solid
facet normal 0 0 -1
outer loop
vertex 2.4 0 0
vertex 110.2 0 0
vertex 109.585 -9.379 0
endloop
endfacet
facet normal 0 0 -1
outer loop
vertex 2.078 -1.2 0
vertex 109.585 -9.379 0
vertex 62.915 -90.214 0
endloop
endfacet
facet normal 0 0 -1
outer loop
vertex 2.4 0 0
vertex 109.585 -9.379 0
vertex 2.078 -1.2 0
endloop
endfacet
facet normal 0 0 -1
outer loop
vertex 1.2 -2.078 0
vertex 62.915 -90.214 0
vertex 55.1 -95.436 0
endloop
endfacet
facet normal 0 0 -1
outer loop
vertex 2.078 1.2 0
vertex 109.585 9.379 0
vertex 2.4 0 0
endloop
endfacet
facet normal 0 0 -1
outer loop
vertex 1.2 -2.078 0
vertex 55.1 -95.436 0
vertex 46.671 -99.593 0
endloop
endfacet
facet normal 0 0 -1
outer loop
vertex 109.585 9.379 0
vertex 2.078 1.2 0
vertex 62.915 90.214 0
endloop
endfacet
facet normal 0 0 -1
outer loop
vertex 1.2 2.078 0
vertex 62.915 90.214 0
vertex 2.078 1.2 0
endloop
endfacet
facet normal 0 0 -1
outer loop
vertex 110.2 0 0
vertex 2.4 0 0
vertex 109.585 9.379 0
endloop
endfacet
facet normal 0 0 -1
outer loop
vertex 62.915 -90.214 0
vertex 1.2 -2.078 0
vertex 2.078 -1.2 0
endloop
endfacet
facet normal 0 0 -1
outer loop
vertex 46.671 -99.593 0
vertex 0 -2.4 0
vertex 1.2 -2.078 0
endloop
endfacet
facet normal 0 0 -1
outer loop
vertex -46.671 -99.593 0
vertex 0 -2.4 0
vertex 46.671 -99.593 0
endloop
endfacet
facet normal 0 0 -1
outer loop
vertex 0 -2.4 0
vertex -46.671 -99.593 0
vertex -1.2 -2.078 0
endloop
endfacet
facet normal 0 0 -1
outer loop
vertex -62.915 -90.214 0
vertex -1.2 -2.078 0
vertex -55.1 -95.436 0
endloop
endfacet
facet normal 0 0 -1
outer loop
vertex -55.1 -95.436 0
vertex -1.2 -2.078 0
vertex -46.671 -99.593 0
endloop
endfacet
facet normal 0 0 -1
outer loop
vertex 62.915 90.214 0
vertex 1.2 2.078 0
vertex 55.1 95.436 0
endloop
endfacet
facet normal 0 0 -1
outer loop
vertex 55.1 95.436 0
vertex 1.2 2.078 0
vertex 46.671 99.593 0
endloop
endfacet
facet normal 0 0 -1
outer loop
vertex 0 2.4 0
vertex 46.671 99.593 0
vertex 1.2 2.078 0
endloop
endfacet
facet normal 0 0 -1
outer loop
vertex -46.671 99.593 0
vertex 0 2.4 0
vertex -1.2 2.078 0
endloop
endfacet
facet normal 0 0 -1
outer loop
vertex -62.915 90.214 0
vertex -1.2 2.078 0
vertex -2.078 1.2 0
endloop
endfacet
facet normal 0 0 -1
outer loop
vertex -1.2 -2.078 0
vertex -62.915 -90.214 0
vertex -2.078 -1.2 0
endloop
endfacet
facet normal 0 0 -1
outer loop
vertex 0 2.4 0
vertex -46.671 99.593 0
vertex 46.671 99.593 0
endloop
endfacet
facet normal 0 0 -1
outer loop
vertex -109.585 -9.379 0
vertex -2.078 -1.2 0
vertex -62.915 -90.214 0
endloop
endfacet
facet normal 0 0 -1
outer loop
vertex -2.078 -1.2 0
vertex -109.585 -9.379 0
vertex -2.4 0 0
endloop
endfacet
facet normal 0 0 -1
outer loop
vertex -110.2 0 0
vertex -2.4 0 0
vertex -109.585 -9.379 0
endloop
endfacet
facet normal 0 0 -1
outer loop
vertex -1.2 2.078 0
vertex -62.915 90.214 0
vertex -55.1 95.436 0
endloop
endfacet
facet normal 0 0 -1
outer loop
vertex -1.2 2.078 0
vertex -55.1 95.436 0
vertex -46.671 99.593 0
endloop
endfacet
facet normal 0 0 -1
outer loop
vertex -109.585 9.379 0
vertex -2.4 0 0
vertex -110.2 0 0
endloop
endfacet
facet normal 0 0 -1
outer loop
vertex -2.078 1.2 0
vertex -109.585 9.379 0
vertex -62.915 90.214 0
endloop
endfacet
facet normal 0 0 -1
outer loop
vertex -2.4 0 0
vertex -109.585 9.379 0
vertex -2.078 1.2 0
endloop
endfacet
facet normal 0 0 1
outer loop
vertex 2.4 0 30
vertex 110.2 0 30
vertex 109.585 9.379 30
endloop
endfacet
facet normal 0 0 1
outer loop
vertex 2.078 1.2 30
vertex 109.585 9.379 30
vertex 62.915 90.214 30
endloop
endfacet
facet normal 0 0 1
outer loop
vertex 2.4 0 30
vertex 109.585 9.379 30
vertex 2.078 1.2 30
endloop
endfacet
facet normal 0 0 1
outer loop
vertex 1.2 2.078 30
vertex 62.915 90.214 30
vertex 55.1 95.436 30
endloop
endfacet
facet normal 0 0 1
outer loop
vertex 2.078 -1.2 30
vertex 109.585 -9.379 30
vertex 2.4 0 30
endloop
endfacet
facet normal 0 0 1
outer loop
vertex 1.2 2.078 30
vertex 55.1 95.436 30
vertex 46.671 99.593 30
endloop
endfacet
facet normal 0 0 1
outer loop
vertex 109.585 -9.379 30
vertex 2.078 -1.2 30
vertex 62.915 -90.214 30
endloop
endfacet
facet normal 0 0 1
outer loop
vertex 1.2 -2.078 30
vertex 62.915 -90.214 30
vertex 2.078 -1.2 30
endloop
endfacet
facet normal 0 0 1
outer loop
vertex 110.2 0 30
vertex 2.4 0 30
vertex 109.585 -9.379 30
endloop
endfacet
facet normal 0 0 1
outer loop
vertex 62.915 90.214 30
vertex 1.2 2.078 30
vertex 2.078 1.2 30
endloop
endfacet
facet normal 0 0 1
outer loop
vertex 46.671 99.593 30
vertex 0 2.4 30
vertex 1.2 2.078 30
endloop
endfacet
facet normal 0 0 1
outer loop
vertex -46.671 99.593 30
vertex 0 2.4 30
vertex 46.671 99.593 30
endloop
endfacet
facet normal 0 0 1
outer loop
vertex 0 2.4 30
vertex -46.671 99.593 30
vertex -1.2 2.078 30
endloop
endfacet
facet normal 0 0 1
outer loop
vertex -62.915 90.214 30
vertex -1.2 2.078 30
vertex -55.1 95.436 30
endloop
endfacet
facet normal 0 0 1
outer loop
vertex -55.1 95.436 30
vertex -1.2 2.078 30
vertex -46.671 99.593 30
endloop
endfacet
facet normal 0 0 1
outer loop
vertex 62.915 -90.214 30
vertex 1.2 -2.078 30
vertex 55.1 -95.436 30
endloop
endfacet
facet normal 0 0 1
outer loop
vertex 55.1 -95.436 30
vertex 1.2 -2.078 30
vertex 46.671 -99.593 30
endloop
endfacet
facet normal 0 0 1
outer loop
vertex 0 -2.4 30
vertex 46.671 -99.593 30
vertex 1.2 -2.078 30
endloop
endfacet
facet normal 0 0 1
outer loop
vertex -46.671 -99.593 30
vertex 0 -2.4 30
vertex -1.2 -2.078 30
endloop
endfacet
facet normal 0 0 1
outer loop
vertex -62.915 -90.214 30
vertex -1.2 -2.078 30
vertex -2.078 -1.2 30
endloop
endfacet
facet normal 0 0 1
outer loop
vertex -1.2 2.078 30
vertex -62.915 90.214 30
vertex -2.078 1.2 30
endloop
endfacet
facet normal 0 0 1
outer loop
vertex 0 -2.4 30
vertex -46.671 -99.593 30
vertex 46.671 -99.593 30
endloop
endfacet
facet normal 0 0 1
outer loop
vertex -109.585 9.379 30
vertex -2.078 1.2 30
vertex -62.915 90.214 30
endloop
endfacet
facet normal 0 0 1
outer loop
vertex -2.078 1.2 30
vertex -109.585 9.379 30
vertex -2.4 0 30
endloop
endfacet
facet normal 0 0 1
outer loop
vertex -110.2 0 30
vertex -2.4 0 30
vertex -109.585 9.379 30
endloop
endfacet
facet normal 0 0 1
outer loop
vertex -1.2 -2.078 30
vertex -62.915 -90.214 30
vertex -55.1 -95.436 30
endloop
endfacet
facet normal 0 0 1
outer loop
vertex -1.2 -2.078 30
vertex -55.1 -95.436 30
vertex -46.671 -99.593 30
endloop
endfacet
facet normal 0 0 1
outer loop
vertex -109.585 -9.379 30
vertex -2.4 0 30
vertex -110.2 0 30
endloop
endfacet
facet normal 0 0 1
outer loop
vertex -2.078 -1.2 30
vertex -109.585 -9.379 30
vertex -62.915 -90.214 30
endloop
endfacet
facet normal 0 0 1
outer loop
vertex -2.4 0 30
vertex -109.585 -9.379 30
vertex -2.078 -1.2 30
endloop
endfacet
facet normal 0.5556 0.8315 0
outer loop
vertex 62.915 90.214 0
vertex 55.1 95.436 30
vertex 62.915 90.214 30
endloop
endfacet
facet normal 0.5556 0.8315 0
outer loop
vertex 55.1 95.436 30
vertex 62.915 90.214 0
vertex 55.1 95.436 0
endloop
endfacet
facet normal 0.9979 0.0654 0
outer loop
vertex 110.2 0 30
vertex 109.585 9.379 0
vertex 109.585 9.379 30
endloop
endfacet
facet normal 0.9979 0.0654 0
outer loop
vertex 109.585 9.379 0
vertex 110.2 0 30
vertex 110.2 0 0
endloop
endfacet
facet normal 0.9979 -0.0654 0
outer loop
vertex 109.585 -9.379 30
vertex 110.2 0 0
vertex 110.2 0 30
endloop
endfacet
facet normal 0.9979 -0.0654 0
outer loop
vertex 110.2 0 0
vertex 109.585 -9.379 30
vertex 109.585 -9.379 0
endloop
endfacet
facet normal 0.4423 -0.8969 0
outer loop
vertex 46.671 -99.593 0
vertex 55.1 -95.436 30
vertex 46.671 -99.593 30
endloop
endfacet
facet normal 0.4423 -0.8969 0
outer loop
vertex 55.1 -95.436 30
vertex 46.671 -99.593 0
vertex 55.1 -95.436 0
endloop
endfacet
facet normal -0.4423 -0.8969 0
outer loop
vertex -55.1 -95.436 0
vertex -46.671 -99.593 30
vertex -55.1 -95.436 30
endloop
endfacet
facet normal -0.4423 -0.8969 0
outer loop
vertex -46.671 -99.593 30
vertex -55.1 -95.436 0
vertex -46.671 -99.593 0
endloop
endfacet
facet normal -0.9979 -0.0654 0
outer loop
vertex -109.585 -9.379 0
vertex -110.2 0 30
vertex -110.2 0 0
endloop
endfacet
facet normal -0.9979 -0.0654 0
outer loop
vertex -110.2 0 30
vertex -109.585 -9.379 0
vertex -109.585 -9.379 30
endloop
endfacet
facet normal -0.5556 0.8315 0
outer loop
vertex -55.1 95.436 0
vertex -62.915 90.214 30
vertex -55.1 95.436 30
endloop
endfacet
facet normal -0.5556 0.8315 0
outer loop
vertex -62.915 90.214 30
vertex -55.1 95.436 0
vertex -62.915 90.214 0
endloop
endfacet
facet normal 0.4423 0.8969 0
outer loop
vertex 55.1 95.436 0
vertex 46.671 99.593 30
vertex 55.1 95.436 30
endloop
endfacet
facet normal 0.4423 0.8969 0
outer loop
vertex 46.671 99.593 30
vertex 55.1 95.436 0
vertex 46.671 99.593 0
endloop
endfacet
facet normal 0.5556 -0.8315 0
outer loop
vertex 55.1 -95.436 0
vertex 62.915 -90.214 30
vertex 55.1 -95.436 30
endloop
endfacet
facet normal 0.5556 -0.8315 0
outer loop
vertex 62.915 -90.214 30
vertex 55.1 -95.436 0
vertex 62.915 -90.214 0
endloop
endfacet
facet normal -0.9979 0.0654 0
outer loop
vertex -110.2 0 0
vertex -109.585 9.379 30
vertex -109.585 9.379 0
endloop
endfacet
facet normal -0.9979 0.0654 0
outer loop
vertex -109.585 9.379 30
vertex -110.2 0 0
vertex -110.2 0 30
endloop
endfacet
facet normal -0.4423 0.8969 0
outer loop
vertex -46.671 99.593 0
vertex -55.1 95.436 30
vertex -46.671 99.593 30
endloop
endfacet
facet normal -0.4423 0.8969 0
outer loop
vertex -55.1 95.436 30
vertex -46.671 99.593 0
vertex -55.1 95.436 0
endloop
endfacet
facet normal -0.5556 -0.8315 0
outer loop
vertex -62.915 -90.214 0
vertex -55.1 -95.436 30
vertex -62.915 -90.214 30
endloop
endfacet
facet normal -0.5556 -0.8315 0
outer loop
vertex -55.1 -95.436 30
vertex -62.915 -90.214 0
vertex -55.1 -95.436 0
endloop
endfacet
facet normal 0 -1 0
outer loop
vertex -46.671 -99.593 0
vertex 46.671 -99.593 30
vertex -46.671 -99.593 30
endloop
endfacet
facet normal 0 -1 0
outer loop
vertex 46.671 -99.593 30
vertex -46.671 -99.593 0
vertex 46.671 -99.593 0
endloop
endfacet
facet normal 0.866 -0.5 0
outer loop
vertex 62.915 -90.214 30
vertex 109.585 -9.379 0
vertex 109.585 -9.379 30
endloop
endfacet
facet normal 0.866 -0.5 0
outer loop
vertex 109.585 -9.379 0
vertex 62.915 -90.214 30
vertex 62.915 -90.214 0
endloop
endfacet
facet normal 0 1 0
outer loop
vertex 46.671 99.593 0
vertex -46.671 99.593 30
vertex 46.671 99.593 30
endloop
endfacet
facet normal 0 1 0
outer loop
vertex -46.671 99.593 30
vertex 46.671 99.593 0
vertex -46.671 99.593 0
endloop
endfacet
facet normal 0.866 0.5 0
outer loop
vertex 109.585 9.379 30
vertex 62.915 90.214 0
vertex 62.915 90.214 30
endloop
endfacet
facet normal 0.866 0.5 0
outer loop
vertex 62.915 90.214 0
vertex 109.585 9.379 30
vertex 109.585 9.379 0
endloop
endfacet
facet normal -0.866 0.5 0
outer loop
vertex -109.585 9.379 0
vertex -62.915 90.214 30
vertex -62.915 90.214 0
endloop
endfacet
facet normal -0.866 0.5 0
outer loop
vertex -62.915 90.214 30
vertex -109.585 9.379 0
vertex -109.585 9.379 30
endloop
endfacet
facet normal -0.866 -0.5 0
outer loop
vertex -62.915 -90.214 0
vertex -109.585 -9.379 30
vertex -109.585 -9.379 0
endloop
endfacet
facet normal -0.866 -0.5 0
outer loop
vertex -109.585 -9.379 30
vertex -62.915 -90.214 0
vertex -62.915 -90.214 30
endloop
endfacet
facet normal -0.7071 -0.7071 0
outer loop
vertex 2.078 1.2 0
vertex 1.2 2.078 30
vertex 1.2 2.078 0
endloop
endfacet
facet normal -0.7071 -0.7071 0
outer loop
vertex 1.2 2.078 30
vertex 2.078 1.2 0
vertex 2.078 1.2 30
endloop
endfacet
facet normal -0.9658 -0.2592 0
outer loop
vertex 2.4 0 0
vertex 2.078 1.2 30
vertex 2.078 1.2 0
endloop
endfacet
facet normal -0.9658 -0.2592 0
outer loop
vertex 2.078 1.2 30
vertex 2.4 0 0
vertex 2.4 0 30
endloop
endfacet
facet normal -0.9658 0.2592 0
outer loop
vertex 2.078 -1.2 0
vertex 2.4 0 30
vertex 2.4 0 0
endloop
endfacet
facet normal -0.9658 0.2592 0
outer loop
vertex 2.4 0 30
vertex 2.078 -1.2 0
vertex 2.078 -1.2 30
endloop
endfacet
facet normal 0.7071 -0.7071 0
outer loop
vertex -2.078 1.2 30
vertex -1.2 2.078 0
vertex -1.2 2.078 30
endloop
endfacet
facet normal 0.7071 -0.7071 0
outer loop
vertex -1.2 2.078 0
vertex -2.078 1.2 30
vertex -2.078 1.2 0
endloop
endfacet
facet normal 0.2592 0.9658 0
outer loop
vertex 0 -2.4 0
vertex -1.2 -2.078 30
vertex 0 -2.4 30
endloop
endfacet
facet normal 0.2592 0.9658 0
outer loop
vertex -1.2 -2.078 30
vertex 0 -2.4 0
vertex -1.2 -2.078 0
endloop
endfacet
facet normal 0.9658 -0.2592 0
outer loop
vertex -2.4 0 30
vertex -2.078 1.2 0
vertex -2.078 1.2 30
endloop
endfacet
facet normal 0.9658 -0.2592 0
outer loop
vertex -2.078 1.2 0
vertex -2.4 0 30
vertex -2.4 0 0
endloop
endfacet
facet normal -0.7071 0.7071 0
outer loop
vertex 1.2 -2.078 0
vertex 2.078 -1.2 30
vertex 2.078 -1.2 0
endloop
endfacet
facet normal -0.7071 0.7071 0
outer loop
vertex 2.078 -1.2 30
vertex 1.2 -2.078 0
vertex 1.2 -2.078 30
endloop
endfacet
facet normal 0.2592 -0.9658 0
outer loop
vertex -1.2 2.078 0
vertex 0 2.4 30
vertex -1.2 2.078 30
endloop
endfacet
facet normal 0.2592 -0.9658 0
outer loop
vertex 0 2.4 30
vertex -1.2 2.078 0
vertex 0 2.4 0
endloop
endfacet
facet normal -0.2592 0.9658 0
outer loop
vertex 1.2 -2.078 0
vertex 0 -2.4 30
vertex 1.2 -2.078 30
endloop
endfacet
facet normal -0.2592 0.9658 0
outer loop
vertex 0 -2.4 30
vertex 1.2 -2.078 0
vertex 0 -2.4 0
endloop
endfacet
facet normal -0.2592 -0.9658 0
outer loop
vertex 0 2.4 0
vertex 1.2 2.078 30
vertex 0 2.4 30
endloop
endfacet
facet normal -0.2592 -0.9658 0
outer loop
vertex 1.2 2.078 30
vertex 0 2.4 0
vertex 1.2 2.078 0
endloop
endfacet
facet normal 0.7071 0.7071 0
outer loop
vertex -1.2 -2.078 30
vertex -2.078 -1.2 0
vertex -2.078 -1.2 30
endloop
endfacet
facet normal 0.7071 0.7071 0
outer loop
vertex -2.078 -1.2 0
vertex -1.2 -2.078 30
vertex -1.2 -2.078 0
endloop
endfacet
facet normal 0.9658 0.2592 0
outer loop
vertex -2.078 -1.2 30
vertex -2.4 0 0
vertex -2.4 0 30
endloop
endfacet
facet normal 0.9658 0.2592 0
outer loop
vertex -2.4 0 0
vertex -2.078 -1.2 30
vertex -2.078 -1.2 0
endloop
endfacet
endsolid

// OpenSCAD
raft_diameter = 230;
raft_height = 30;
wall_thickness = 1.2;

module chamfer() {
    //cylinder(r=2*wall_thickness, h=raft_height, $fn=12);
    difference()
    {
        cylinder(r=raft_diameter/2, h=raft_height, $fn=12);
        cylinder(r=(raft_diameter/2 - 4*wall_thickness), h=raft_height, $fn=48);
    }
}

module hexagon() {
    difference() {
        cylinder(r=raft_diameter/2, h=raft_height, $fn=6);
    chamfer();
    }
}

difference() {
    hexagon();
    cylinder(r=2*wall_thickness, h=raft_height, $fn=12);
}
